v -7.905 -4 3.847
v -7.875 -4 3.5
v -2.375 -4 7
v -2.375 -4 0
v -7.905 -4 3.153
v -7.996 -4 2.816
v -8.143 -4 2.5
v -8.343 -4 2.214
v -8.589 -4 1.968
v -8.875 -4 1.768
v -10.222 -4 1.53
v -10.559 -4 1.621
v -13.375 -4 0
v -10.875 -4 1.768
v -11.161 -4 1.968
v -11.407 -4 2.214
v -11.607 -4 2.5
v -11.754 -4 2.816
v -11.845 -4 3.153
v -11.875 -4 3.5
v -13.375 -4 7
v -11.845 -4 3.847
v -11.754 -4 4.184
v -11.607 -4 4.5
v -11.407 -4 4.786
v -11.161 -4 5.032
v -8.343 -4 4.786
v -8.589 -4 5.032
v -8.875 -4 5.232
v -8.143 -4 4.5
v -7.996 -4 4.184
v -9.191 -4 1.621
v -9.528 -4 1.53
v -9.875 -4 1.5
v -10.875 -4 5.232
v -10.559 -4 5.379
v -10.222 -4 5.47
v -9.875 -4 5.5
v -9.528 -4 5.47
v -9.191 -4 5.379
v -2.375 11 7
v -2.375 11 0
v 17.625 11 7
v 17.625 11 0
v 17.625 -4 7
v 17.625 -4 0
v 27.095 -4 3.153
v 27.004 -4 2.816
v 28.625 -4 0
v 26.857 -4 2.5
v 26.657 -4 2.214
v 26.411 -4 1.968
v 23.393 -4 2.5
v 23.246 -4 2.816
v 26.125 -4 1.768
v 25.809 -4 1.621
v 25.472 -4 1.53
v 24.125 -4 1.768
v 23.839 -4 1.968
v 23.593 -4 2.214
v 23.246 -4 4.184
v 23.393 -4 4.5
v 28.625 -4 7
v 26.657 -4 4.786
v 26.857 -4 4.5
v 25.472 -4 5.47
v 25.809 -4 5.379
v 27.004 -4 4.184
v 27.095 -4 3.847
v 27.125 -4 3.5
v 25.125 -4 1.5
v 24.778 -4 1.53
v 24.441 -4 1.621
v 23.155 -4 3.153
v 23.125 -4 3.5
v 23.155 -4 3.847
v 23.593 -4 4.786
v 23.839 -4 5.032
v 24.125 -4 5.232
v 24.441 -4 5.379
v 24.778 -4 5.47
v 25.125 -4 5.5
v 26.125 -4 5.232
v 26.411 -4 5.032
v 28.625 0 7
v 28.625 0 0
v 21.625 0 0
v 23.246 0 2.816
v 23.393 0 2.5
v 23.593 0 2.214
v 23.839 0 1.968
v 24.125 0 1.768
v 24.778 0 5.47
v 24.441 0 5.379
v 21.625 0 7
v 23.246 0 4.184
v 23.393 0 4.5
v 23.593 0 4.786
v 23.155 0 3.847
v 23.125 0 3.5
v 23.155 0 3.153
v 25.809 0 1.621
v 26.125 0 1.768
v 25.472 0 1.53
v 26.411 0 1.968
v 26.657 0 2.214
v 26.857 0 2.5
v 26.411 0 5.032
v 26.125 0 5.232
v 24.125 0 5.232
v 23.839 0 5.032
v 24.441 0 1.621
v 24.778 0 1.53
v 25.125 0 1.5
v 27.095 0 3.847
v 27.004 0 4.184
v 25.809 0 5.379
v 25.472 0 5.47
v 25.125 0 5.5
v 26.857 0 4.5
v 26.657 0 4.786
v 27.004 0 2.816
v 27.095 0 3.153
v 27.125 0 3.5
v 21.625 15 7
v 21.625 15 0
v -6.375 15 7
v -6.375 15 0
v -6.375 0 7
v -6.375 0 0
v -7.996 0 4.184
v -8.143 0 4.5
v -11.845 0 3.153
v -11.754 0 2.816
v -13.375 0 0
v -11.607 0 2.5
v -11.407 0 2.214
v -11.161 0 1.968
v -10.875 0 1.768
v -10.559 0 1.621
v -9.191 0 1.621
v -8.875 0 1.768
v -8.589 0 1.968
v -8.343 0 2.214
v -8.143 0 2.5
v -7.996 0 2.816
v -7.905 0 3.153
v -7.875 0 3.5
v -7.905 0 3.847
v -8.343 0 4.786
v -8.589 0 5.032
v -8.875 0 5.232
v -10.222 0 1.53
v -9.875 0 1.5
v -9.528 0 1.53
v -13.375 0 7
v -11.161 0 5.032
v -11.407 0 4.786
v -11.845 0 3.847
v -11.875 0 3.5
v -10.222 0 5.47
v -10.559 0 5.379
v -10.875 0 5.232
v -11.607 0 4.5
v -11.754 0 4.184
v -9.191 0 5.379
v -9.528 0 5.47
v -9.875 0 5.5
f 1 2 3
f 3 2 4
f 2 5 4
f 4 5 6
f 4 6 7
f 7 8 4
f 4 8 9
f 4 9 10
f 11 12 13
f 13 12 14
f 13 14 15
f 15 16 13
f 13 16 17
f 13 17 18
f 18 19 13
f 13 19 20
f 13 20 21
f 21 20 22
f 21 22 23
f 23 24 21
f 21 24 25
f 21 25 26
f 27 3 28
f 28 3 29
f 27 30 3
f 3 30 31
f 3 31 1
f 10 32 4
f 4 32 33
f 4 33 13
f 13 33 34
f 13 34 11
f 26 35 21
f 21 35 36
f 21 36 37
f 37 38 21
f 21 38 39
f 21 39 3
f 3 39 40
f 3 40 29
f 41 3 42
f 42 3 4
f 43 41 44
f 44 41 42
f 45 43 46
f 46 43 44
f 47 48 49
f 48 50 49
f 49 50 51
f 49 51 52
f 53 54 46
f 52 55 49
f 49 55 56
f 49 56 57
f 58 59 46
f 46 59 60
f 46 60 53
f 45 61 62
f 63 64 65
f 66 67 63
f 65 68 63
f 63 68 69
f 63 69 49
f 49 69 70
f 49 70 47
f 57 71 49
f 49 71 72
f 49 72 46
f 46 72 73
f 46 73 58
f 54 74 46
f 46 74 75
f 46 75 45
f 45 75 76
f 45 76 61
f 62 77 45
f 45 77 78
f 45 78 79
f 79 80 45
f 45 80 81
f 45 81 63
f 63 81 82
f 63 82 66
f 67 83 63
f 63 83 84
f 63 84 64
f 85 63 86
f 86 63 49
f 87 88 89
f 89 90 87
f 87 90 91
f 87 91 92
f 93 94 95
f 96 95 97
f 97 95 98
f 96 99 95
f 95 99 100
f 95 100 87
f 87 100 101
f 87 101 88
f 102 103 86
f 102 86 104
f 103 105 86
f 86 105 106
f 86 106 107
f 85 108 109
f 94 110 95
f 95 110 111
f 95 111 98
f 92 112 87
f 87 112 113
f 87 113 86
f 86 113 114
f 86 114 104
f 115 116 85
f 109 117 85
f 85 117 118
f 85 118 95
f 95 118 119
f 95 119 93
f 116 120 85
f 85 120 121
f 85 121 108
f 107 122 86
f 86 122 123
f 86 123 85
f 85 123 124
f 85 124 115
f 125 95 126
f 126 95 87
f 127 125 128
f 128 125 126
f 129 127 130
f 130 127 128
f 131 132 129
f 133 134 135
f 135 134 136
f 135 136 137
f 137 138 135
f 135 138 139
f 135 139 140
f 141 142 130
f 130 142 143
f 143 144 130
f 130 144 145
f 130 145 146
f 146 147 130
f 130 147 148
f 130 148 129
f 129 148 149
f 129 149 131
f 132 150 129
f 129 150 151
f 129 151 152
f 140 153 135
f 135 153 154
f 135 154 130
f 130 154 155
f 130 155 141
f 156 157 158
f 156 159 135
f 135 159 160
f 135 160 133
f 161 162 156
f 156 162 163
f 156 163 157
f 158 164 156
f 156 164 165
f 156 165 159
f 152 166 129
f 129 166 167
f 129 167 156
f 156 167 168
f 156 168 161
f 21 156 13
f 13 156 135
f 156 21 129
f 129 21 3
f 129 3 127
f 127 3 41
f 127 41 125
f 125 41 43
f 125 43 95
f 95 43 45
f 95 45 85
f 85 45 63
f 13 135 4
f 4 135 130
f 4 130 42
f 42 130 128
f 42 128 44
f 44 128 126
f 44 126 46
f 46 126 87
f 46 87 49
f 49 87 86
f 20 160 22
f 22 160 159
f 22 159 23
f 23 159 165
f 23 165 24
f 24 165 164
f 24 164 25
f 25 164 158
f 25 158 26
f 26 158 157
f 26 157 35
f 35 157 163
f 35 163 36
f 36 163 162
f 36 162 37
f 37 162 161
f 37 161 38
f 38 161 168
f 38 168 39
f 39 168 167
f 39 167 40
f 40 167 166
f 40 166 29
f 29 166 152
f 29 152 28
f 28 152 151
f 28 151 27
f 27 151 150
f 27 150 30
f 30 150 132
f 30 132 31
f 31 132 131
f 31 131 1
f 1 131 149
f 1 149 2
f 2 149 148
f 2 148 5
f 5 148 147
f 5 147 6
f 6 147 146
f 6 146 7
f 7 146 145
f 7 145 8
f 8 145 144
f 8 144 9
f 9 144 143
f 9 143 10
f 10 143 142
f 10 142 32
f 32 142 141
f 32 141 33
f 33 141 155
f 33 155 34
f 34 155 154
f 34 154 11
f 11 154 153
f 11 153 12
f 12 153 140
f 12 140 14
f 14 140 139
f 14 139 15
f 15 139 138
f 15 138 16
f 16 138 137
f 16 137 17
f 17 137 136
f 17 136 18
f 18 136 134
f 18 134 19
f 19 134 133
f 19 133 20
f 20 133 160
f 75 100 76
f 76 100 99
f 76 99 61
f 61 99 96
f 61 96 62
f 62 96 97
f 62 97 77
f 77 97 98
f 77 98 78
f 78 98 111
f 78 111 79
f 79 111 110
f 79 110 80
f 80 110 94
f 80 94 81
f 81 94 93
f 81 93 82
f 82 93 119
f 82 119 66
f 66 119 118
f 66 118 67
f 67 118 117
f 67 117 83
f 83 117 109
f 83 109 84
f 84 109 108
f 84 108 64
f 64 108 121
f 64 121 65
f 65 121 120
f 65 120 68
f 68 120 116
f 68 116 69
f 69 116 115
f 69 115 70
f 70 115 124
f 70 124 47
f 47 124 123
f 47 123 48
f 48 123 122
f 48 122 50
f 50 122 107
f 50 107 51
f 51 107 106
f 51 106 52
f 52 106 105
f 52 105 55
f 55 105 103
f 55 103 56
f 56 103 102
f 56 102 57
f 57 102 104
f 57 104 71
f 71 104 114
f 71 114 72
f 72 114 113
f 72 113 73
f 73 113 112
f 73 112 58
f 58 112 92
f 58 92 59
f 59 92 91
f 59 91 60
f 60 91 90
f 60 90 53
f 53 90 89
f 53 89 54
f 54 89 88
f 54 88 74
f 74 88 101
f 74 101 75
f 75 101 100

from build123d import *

# Parameters (mm, degrees)
EXTRUDE_1_DEPTH     = 7
SKETCH_2_R          = 2
CUT_EXTRUDE_1_DEPTH = 34.066457703


with BuildPart() as part:
    # 草图1 → 凸台-拉伸1 (new body)
    with BuildSketch(Plane.XY):
        Polygon((-2.375, -4), (-2.375, 11), (17.625, 11), (17.625, -4), (28.625, -4), (28.625, 0), (21.625, 0), (21.625, 15), (-6.375, 15), (-6.375, 0), (-13.375, 0), (-13.375, -4), align=None)
    extrude(amount=EXTRUDE_1_DEPTH)

    # 草图2 → 切除-拉伸1 (cut, through all)
    with BuildSketch(Plane(origin=(0, 0, 0), x_dir=(1, 0, 0), z_dir=(0, 1, 0))):
        with Locations(Location((25.125, -3.5, 0), (0, 0, 180))):
            Circle(SKETCH_2_R)
        with Locations((-9.875, -3.5)):
            Circle(SKETCH_2_R)
    extrude(amount=-CUT_EXTRUDE_1_DEPTH, mode=Mode.SUBTRACT)


solid = part.part
